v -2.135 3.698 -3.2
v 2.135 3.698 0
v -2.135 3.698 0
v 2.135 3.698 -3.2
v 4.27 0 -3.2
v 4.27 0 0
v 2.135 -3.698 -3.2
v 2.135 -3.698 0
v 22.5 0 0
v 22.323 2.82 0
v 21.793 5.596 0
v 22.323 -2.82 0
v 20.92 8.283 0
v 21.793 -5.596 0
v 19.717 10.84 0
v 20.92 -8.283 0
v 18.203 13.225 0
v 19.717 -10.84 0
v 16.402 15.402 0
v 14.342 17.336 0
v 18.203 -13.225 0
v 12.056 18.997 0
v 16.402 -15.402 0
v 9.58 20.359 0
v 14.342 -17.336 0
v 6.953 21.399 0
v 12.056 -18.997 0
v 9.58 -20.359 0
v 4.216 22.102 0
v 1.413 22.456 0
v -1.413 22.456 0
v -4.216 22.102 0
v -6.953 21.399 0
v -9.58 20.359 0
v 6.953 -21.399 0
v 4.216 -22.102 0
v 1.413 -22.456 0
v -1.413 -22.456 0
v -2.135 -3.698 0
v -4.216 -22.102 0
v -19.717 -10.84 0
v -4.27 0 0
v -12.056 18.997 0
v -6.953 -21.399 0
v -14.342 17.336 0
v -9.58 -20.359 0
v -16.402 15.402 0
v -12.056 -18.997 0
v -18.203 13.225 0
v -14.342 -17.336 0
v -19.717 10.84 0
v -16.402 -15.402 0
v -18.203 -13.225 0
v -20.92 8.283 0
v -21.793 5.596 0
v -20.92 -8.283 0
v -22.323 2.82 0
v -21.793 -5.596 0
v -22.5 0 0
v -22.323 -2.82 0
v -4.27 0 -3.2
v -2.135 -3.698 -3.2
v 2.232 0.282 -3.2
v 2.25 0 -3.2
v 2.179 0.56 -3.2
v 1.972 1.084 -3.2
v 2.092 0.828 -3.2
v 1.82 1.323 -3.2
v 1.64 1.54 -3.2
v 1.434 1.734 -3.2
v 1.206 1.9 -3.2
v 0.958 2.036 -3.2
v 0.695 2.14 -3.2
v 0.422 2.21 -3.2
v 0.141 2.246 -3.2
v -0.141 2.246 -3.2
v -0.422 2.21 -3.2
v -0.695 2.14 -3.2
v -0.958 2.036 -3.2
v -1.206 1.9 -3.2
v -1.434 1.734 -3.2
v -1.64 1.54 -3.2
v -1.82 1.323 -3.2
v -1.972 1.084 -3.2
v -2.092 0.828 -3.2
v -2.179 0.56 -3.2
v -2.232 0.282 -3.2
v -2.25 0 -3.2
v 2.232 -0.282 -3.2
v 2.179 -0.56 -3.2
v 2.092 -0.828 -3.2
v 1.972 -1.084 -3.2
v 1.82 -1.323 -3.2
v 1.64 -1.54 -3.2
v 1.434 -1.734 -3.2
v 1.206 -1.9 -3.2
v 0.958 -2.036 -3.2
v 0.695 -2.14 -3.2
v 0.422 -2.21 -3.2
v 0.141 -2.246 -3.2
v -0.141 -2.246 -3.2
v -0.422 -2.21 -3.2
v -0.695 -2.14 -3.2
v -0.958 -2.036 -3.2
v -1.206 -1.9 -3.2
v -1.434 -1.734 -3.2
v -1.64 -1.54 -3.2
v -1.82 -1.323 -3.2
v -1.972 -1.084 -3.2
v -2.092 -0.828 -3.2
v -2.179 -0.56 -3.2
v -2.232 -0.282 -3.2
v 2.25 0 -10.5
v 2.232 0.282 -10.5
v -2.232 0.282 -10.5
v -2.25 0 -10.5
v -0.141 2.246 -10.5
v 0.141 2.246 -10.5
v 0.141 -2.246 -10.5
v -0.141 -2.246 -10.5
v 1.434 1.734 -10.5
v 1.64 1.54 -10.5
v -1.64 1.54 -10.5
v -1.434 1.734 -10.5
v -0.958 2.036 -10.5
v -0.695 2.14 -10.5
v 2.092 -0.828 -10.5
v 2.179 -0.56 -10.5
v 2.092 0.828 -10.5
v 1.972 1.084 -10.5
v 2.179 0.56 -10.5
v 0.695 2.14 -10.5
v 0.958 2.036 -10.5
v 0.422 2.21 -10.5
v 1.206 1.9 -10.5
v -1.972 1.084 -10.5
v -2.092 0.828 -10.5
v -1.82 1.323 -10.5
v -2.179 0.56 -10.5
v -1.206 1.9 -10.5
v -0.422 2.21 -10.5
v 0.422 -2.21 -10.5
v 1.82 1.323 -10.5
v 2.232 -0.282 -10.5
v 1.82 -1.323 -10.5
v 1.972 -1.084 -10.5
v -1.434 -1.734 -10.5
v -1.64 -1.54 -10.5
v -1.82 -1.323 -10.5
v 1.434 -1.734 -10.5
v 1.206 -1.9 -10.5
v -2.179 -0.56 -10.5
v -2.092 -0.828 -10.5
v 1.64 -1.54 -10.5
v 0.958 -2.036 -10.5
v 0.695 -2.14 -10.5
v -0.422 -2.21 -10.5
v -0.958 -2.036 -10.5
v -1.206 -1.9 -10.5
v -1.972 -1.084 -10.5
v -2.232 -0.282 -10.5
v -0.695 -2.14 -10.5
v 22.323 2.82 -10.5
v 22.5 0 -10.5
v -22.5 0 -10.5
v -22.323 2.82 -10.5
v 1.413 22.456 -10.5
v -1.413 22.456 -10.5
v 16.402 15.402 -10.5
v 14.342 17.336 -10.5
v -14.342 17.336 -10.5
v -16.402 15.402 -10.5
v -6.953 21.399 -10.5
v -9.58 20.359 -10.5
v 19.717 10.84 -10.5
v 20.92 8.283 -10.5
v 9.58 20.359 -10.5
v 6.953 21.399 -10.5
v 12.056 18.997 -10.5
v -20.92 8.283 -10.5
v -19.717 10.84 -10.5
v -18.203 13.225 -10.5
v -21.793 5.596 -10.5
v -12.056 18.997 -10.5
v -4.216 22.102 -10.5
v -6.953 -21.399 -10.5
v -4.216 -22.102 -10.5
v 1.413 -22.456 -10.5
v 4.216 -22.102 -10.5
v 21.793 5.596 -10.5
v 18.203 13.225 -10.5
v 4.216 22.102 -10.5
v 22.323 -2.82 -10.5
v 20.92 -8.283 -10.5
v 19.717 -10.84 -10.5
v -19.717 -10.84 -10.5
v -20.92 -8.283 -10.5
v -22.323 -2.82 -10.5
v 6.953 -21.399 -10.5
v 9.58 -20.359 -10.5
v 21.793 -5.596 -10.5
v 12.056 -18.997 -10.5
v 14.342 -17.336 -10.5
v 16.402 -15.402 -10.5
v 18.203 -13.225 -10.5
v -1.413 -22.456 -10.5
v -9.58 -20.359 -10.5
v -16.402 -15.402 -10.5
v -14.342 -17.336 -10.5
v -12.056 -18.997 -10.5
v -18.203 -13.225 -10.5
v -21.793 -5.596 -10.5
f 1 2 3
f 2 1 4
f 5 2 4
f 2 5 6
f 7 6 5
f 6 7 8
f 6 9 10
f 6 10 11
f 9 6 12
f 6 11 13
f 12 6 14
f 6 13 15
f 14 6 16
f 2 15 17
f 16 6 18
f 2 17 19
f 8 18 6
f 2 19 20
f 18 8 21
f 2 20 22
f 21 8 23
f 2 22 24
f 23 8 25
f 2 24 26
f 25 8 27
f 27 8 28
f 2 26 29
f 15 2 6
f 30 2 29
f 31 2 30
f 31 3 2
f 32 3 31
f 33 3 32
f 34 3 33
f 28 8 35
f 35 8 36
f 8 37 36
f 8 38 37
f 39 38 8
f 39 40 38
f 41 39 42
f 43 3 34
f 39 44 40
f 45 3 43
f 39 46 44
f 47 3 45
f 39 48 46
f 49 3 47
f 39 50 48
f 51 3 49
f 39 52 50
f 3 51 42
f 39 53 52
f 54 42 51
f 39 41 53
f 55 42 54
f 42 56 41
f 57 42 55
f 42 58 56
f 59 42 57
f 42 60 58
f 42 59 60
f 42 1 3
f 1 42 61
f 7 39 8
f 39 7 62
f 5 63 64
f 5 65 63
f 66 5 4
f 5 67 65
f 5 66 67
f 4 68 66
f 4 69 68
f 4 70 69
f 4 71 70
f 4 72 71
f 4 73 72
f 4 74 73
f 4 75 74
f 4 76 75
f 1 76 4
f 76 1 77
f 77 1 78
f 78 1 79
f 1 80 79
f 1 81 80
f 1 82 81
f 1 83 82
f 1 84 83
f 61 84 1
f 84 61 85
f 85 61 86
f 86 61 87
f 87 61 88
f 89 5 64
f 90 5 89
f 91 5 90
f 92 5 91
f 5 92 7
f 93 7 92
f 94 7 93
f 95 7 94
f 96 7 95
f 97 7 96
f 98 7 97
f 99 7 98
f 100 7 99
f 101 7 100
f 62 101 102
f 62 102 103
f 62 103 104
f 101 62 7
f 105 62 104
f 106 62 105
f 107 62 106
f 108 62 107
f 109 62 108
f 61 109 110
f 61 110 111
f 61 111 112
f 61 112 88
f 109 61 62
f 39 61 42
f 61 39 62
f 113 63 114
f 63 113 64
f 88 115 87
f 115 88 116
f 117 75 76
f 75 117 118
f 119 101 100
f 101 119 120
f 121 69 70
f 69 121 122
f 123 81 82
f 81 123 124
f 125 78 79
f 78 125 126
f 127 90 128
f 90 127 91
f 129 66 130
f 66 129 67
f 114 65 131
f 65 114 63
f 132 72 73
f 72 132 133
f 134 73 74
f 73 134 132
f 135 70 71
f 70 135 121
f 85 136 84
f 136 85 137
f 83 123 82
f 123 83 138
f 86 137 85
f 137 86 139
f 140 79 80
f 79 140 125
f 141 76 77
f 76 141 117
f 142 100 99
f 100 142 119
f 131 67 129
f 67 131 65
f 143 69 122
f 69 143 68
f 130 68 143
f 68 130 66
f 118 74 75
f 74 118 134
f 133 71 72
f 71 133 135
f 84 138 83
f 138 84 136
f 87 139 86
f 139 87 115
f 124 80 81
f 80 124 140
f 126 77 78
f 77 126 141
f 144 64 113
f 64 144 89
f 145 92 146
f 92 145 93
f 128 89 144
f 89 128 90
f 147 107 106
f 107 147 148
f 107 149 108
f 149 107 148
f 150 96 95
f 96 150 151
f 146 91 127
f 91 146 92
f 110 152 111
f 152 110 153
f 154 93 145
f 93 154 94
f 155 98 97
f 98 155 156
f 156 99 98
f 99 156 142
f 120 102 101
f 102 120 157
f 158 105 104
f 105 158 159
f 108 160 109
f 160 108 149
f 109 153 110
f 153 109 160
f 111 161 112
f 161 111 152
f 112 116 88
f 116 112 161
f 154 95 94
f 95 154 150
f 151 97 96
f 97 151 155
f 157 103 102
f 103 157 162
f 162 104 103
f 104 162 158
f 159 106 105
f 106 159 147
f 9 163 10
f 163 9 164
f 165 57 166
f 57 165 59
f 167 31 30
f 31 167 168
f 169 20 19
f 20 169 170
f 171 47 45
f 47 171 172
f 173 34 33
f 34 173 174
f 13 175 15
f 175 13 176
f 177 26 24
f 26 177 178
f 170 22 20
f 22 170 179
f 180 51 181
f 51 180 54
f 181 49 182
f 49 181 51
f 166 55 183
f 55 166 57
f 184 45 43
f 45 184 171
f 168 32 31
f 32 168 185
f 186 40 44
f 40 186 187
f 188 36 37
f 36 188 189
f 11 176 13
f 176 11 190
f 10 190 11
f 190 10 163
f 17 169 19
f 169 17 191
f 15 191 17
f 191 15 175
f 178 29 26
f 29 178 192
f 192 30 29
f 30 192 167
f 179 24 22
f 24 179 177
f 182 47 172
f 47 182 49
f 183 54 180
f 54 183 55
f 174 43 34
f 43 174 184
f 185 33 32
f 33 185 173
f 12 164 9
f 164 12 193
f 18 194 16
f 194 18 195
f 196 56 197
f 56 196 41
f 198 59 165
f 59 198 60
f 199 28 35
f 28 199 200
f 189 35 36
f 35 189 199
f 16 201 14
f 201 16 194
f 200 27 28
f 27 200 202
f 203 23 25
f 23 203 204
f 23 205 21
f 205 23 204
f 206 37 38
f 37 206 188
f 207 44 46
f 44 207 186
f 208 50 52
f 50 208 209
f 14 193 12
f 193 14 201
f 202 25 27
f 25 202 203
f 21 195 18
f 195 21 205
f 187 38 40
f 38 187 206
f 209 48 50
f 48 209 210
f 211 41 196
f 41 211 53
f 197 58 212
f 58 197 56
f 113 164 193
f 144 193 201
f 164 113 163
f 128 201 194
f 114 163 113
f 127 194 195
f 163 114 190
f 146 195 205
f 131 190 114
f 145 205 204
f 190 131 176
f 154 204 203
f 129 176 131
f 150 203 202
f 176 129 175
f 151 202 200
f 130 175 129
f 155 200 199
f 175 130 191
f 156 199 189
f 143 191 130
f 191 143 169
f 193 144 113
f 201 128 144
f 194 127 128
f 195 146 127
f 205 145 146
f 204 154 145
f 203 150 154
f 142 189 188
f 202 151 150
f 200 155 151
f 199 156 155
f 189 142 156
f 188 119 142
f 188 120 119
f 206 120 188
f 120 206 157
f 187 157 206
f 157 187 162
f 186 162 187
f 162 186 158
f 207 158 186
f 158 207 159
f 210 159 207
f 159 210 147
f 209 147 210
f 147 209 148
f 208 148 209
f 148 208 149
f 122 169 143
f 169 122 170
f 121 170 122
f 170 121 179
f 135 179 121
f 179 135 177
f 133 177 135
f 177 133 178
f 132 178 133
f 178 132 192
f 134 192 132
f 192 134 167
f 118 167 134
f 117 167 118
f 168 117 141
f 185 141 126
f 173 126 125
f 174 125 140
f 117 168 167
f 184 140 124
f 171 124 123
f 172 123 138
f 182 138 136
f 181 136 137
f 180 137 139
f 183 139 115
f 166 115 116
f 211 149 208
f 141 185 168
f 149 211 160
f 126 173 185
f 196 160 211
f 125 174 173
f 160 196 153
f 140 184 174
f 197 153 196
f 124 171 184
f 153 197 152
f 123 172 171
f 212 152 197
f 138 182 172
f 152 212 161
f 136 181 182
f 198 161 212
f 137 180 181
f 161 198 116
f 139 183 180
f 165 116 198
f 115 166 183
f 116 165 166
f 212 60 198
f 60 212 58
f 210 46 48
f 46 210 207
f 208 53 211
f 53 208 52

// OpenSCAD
$fn = 50;


difference() {
	union() {
		translate(v = [0, 0, -10.5000000000]) {
			cylinder(h = 10.5000000000, r = 22.5000000000);
		}
	}
	union() {
		translate(v = [0, 0, 0]) {
			rotate(a = [0, 0, 0]) {
				difference() {
					union() {
						translate(v = [0, 0, -3.2000000000]) {
							linear_extrude(height = 3.2000000000) {
								polygon(points = [[4.2698000000, 0.0000000000], [2.1349000000, 3.6977552691], [-2.1349000000, 3.6977552691], [-4.2698000000, 0.0000000000], [-2.1349000000, -3.6977552691], [2.1349000000, -3.6977552691]]);
							}
						}
					}
					union();
				}
			}
		}
		#translate(v = [0, 0, -100.0000000000]) {
			cylinder(h = 200, r = 2.2500000000);
		}
	}
}
